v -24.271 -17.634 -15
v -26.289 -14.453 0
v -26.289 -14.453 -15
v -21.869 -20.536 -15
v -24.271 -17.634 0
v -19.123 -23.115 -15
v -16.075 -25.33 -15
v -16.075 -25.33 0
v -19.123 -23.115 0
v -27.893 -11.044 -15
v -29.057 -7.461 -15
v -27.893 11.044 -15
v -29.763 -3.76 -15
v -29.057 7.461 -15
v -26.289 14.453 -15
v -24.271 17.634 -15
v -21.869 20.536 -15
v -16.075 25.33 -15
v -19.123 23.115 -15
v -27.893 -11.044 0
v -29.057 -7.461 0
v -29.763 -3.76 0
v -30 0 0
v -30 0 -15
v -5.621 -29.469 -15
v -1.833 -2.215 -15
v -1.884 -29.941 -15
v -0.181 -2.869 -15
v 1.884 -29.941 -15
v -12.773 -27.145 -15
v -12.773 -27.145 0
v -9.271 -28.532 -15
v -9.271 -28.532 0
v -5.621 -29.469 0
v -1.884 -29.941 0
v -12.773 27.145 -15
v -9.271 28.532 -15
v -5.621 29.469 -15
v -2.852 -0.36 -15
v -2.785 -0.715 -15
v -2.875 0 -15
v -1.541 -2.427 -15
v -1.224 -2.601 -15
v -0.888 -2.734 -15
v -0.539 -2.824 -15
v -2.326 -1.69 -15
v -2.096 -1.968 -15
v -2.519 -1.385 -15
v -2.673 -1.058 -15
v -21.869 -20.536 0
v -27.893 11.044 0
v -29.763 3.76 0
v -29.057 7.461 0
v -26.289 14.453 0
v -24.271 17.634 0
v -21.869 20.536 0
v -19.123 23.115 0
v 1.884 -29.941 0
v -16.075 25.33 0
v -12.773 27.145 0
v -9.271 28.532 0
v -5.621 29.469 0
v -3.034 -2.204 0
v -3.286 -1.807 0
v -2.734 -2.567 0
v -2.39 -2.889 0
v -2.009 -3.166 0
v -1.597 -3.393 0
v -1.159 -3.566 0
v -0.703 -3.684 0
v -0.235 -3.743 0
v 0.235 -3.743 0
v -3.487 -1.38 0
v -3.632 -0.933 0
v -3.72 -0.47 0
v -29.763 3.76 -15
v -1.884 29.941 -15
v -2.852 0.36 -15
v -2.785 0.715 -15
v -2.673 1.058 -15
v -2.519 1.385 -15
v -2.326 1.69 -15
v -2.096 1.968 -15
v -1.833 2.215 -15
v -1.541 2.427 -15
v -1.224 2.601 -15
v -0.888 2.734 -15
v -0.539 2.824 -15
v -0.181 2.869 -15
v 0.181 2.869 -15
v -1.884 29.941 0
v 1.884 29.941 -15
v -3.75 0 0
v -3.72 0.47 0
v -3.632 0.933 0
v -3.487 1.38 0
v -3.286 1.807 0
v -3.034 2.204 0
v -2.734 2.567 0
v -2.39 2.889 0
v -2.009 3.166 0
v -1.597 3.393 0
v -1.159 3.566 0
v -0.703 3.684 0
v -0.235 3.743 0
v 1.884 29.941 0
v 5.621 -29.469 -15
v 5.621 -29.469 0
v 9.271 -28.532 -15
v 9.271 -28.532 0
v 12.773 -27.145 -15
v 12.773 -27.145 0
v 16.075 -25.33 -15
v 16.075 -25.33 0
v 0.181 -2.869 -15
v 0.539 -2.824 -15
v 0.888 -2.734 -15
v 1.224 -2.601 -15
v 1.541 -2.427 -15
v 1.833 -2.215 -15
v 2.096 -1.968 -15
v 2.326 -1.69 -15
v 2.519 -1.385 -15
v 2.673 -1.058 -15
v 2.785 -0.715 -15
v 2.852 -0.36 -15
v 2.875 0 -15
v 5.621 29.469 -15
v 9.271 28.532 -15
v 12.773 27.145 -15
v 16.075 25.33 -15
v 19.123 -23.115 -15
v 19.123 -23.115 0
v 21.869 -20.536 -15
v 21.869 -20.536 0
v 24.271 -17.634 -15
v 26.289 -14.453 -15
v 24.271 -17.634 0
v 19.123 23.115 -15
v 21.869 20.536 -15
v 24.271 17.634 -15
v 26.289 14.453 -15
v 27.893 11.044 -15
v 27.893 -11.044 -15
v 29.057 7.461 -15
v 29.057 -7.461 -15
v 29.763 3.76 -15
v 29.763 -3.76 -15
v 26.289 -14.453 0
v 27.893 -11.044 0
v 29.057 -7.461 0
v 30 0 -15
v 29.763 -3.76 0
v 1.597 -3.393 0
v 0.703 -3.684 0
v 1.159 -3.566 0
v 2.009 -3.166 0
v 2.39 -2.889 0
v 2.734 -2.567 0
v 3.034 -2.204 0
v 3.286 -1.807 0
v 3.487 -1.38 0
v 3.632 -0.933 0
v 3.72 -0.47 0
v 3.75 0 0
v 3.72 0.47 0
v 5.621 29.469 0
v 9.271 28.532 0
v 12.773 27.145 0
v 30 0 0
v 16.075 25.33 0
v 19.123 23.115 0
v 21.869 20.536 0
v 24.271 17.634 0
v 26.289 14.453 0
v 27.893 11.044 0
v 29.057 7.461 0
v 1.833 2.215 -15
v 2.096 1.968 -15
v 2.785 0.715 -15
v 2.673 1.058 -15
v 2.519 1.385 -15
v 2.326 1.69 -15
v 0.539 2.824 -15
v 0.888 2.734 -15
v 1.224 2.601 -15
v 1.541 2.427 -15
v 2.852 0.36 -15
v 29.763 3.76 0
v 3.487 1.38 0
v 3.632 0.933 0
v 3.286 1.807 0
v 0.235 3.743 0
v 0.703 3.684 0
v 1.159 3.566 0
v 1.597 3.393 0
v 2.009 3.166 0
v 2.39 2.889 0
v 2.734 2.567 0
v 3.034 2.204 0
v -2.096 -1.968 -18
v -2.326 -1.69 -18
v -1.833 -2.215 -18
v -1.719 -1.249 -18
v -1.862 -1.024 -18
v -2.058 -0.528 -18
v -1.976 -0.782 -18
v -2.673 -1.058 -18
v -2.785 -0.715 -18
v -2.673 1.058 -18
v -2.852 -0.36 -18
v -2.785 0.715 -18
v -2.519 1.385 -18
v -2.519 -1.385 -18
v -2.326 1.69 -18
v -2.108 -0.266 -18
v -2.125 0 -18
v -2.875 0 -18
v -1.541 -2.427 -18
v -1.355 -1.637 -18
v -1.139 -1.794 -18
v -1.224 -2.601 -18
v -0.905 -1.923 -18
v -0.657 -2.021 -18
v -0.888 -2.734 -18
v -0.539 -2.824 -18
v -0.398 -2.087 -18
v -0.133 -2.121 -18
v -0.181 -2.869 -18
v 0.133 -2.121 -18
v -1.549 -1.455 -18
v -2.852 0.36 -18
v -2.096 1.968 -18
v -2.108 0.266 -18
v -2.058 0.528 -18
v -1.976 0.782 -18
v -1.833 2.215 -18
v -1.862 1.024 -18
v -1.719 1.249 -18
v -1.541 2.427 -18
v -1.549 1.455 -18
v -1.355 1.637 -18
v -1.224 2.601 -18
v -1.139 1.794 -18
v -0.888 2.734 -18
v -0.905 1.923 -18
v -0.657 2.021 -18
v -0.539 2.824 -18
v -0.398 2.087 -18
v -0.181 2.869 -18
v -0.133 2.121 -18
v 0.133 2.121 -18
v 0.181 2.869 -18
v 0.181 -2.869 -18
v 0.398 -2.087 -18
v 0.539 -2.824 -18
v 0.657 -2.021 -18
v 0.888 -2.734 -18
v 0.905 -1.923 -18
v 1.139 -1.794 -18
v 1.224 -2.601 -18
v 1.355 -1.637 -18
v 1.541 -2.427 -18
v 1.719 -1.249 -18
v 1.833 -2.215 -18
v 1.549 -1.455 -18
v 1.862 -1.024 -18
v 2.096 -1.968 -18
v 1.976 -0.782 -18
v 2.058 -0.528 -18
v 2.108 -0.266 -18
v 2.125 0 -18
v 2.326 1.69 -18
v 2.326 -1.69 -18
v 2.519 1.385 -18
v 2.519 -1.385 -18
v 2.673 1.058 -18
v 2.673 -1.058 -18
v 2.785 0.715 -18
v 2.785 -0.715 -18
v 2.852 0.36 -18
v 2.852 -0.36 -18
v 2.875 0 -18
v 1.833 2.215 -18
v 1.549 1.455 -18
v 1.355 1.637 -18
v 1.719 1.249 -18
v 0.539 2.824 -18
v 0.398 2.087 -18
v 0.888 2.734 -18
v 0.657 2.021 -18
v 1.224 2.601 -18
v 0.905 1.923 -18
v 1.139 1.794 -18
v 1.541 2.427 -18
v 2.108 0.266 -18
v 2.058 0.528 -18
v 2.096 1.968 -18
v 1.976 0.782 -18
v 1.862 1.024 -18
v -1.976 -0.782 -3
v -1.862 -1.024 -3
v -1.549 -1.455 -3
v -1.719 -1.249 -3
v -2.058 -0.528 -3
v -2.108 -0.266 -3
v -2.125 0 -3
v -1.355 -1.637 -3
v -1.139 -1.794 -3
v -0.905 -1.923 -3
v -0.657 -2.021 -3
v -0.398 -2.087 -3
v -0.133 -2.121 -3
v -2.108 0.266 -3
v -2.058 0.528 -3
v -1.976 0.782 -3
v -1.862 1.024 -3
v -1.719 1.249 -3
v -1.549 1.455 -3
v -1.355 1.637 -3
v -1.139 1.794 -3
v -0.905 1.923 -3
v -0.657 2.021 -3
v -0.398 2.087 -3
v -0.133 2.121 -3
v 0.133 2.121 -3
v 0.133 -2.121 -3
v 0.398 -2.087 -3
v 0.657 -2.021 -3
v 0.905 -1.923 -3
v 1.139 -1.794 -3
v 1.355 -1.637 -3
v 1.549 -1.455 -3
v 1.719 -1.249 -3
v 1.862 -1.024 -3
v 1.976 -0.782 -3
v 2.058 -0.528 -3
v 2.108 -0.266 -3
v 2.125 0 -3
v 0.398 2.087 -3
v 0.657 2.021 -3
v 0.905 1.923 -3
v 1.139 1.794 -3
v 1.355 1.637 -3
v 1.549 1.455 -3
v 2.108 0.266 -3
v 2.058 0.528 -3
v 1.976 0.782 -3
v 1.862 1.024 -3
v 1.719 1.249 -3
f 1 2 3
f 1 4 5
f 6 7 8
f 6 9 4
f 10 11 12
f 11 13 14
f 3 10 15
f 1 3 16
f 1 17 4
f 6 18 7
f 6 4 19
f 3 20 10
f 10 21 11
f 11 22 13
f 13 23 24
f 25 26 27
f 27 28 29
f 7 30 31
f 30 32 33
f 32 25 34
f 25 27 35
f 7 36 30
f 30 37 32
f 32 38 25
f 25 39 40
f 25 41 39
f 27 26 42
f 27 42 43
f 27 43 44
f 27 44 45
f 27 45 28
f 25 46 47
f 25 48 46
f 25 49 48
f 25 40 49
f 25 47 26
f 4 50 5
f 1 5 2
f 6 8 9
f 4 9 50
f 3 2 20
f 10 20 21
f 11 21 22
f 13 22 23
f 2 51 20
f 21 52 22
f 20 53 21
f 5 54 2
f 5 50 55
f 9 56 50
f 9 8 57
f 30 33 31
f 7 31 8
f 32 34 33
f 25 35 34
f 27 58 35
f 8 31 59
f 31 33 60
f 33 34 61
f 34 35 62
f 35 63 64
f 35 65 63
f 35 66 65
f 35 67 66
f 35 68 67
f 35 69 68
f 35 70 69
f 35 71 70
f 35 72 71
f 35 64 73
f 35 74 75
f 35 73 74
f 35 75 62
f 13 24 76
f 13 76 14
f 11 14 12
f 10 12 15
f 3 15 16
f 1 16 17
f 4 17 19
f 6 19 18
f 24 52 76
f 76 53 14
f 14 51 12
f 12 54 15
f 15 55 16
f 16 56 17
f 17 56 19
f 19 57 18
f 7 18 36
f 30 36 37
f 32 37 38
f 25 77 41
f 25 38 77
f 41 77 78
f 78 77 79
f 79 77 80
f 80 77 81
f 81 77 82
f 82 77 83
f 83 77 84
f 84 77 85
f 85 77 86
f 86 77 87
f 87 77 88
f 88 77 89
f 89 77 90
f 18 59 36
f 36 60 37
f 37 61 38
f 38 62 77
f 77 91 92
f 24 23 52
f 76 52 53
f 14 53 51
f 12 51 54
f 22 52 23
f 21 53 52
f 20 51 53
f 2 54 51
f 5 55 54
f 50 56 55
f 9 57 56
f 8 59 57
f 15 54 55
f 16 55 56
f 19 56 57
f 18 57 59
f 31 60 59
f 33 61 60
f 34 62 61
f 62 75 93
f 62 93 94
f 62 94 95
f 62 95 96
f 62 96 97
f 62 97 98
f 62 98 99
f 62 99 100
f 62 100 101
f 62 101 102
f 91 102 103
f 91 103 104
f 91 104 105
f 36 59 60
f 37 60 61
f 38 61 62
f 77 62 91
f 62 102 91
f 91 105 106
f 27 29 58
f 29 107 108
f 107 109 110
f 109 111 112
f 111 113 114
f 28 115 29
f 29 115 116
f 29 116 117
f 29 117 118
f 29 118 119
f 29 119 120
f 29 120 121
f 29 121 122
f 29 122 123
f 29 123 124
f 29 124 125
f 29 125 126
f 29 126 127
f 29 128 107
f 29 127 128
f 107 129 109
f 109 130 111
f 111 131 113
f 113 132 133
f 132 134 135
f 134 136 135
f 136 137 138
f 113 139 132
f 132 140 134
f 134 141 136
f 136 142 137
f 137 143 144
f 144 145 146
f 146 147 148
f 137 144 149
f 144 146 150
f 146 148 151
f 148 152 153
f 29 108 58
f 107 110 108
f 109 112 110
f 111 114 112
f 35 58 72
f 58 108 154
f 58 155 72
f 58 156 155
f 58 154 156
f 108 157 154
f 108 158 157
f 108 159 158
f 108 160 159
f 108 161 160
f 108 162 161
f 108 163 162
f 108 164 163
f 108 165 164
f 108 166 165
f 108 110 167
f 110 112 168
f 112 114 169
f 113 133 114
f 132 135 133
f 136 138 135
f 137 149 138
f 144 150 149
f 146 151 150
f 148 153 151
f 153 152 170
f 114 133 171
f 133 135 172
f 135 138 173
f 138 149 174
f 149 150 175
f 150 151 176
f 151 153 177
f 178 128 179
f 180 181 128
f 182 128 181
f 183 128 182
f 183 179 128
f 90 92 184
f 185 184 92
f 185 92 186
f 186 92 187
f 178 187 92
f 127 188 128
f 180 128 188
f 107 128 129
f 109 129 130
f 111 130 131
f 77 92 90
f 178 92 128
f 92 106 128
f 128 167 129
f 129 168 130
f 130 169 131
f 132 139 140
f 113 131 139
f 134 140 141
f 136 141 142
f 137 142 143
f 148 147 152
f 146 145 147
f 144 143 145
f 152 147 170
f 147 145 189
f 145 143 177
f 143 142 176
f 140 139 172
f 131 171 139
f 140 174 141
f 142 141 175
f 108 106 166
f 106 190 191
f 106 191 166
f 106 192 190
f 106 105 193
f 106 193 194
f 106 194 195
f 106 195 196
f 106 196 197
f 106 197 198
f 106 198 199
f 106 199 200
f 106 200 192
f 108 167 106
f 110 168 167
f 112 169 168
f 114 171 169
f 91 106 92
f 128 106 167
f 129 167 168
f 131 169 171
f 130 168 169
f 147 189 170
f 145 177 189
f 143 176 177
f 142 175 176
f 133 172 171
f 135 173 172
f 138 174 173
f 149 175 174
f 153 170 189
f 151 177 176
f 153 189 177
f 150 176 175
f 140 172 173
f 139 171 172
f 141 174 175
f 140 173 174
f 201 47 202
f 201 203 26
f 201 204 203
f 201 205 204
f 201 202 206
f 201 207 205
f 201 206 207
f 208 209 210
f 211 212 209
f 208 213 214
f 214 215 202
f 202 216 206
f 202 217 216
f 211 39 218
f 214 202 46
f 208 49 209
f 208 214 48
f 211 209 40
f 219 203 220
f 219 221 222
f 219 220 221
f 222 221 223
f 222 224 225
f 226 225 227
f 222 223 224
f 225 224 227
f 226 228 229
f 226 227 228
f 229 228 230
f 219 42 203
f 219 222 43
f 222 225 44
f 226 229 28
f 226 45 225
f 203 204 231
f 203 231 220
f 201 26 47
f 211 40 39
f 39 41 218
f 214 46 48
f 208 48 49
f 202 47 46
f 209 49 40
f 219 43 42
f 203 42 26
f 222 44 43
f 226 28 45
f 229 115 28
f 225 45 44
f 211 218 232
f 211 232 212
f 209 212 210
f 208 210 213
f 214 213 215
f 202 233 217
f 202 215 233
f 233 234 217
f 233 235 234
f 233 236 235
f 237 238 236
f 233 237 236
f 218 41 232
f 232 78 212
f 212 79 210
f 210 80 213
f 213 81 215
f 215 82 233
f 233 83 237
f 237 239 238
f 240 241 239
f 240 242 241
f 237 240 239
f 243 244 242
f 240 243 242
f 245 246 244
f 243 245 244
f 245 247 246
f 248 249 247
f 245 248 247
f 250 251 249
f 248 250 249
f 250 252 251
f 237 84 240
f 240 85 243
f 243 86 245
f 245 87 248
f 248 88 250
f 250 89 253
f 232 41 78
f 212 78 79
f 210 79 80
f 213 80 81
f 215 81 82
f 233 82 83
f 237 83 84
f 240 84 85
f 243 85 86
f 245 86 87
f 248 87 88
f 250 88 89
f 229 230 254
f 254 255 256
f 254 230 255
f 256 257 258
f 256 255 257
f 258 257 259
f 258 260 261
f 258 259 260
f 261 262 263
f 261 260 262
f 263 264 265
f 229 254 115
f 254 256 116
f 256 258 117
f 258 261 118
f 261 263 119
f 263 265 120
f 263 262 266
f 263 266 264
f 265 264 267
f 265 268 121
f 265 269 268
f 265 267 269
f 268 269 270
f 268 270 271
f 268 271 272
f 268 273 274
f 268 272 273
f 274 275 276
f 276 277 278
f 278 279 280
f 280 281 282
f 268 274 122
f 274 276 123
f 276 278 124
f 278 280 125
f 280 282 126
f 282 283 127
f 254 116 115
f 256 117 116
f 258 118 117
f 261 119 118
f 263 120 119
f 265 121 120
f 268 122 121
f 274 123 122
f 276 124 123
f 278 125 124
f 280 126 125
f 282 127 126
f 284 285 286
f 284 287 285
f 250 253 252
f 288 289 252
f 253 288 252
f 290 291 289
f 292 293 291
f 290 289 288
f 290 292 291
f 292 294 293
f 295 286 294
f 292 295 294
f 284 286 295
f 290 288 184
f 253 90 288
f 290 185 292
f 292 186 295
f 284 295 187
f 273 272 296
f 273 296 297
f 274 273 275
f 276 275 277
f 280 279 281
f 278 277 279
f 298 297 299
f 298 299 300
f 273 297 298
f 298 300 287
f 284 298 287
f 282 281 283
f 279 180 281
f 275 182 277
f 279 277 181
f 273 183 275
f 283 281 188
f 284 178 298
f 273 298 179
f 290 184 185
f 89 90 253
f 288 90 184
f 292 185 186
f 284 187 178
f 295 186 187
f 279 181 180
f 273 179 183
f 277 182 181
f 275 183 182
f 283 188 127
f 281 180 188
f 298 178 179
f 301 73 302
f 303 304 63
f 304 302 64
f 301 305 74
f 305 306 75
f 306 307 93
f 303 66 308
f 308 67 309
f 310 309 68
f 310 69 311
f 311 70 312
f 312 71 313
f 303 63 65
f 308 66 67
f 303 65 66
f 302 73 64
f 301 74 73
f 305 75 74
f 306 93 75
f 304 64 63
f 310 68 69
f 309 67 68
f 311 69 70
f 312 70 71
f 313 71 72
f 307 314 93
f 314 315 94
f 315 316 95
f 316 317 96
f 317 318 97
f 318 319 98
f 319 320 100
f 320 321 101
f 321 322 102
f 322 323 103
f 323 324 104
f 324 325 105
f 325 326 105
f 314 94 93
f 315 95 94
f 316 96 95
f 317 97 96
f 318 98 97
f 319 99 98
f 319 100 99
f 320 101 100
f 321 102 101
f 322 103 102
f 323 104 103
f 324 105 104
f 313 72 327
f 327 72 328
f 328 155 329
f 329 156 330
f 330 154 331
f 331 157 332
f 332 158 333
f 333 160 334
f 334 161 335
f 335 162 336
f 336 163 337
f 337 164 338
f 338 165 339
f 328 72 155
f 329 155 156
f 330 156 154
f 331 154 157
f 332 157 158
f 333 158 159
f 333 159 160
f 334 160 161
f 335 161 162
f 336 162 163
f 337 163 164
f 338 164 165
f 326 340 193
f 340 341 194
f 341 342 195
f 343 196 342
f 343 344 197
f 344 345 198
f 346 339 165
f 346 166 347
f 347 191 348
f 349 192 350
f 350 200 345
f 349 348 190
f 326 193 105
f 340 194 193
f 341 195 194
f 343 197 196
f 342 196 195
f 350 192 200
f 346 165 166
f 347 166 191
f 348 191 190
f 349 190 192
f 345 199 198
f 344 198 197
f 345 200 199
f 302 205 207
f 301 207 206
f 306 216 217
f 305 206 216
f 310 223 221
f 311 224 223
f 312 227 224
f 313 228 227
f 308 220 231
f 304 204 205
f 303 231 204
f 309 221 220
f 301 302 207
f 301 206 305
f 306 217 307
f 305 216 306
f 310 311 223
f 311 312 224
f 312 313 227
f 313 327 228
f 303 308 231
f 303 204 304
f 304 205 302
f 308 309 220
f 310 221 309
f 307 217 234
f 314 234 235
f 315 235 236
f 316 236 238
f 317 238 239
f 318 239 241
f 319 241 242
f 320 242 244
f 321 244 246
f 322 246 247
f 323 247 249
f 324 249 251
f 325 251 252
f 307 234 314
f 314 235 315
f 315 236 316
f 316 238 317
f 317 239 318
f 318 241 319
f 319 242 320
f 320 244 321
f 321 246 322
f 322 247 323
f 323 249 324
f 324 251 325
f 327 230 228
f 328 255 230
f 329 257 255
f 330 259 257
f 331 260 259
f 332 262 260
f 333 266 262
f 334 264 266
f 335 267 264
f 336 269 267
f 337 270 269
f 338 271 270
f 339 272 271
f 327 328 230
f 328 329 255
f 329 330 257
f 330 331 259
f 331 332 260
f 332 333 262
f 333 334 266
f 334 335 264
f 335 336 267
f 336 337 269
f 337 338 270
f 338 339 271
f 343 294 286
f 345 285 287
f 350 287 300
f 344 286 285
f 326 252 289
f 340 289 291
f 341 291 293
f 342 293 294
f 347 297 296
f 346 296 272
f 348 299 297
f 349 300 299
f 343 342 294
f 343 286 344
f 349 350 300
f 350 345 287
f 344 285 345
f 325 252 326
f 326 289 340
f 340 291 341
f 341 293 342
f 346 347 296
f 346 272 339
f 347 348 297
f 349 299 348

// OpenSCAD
$fn = 50;


difference() {
	union() {
		translate(v = [0, 0, -15.0000000000]) {
			cylinder(h = 15, r = 30.0000000000);
		}
		#translate(v = [0, 0, -18.0000000000]) {
			cylinder(h = 18, r = 2.8750000000);
		}
	}
	union() {
		translate(v = [0, 0, 0]) {
			rotate(a = [0, 0, 0]) {
				difference() {
					union() {
						translate(v = [0, 0, -18.0000000000]) {
							cylinder(h = 18, r = 2.0000000000);
						}
						translate(v = [0, 0, -3]) {
							cylinder(h = 3, r1 = 2.1250000000, r2 = 3.7500000000);
						}
						translate(v = [0, 0, -18.0000000000]) {
							cylinder(h = 18, r = 2.1250000000);
						}
						translate(v = [0, 0, -18.0000000000]) {
							cylinder(h = 18, r = 2.0000000000);
						}
					}
					union();
				}
			}
		}
	}
}
